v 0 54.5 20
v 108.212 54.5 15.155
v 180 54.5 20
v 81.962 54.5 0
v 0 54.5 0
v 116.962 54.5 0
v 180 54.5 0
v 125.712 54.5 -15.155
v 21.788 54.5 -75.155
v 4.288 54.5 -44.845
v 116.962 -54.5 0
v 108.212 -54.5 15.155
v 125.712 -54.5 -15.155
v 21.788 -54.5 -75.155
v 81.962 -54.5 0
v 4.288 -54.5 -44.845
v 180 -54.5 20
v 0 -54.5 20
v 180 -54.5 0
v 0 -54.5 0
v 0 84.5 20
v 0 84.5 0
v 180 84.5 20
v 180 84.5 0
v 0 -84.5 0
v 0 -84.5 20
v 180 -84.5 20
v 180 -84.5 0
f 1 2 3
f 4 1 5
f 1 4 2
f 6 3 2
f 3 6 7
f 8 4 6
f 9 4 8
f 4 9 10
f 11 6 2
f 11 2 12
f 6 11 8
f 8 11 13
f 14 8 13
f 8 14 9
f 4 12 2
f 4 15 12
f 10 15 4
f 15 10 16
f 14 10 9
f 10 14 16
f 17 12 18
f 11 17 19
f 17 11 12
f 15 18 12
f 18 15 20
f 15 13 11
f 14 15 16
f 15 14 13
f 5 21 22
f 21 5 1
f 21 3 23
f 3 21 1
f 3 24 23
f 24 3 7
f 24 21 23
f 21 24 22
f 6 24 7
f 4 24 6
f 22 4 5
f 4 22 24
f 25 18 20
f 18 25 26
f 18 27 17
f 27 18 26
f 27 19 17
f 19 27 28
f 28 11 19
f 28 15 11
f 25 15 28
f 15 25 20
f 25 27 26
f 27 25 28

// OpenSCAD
// minimum angle
$fa = 1;
$fs = 1; 

// width of the display assembly
inner_width = 109; // [107.0:0.2:110.0]

// width of the mounts
mount_width = 30.0; // [10.0:100.0]

// length of the mounts
mount_length = 180; // [80.0:180.0]

// height of the mounts
mount_height = 20; // [10.0:30.0]

// depth of the 
cut_depth = 12; // [8.0:0.5:15]





union() {
	translate([65,0,-30])
		rotate([0,60,0])
			cube([35, inner_width, 120], center=true);

	translate([0,inner_width/2,0])
		cube([mount_length, mount_width, mount_height]);
	translate([0,-(mount_width + inner_width/2),0])
		cube([mount_length, mount_width, mount_height]);
	}
